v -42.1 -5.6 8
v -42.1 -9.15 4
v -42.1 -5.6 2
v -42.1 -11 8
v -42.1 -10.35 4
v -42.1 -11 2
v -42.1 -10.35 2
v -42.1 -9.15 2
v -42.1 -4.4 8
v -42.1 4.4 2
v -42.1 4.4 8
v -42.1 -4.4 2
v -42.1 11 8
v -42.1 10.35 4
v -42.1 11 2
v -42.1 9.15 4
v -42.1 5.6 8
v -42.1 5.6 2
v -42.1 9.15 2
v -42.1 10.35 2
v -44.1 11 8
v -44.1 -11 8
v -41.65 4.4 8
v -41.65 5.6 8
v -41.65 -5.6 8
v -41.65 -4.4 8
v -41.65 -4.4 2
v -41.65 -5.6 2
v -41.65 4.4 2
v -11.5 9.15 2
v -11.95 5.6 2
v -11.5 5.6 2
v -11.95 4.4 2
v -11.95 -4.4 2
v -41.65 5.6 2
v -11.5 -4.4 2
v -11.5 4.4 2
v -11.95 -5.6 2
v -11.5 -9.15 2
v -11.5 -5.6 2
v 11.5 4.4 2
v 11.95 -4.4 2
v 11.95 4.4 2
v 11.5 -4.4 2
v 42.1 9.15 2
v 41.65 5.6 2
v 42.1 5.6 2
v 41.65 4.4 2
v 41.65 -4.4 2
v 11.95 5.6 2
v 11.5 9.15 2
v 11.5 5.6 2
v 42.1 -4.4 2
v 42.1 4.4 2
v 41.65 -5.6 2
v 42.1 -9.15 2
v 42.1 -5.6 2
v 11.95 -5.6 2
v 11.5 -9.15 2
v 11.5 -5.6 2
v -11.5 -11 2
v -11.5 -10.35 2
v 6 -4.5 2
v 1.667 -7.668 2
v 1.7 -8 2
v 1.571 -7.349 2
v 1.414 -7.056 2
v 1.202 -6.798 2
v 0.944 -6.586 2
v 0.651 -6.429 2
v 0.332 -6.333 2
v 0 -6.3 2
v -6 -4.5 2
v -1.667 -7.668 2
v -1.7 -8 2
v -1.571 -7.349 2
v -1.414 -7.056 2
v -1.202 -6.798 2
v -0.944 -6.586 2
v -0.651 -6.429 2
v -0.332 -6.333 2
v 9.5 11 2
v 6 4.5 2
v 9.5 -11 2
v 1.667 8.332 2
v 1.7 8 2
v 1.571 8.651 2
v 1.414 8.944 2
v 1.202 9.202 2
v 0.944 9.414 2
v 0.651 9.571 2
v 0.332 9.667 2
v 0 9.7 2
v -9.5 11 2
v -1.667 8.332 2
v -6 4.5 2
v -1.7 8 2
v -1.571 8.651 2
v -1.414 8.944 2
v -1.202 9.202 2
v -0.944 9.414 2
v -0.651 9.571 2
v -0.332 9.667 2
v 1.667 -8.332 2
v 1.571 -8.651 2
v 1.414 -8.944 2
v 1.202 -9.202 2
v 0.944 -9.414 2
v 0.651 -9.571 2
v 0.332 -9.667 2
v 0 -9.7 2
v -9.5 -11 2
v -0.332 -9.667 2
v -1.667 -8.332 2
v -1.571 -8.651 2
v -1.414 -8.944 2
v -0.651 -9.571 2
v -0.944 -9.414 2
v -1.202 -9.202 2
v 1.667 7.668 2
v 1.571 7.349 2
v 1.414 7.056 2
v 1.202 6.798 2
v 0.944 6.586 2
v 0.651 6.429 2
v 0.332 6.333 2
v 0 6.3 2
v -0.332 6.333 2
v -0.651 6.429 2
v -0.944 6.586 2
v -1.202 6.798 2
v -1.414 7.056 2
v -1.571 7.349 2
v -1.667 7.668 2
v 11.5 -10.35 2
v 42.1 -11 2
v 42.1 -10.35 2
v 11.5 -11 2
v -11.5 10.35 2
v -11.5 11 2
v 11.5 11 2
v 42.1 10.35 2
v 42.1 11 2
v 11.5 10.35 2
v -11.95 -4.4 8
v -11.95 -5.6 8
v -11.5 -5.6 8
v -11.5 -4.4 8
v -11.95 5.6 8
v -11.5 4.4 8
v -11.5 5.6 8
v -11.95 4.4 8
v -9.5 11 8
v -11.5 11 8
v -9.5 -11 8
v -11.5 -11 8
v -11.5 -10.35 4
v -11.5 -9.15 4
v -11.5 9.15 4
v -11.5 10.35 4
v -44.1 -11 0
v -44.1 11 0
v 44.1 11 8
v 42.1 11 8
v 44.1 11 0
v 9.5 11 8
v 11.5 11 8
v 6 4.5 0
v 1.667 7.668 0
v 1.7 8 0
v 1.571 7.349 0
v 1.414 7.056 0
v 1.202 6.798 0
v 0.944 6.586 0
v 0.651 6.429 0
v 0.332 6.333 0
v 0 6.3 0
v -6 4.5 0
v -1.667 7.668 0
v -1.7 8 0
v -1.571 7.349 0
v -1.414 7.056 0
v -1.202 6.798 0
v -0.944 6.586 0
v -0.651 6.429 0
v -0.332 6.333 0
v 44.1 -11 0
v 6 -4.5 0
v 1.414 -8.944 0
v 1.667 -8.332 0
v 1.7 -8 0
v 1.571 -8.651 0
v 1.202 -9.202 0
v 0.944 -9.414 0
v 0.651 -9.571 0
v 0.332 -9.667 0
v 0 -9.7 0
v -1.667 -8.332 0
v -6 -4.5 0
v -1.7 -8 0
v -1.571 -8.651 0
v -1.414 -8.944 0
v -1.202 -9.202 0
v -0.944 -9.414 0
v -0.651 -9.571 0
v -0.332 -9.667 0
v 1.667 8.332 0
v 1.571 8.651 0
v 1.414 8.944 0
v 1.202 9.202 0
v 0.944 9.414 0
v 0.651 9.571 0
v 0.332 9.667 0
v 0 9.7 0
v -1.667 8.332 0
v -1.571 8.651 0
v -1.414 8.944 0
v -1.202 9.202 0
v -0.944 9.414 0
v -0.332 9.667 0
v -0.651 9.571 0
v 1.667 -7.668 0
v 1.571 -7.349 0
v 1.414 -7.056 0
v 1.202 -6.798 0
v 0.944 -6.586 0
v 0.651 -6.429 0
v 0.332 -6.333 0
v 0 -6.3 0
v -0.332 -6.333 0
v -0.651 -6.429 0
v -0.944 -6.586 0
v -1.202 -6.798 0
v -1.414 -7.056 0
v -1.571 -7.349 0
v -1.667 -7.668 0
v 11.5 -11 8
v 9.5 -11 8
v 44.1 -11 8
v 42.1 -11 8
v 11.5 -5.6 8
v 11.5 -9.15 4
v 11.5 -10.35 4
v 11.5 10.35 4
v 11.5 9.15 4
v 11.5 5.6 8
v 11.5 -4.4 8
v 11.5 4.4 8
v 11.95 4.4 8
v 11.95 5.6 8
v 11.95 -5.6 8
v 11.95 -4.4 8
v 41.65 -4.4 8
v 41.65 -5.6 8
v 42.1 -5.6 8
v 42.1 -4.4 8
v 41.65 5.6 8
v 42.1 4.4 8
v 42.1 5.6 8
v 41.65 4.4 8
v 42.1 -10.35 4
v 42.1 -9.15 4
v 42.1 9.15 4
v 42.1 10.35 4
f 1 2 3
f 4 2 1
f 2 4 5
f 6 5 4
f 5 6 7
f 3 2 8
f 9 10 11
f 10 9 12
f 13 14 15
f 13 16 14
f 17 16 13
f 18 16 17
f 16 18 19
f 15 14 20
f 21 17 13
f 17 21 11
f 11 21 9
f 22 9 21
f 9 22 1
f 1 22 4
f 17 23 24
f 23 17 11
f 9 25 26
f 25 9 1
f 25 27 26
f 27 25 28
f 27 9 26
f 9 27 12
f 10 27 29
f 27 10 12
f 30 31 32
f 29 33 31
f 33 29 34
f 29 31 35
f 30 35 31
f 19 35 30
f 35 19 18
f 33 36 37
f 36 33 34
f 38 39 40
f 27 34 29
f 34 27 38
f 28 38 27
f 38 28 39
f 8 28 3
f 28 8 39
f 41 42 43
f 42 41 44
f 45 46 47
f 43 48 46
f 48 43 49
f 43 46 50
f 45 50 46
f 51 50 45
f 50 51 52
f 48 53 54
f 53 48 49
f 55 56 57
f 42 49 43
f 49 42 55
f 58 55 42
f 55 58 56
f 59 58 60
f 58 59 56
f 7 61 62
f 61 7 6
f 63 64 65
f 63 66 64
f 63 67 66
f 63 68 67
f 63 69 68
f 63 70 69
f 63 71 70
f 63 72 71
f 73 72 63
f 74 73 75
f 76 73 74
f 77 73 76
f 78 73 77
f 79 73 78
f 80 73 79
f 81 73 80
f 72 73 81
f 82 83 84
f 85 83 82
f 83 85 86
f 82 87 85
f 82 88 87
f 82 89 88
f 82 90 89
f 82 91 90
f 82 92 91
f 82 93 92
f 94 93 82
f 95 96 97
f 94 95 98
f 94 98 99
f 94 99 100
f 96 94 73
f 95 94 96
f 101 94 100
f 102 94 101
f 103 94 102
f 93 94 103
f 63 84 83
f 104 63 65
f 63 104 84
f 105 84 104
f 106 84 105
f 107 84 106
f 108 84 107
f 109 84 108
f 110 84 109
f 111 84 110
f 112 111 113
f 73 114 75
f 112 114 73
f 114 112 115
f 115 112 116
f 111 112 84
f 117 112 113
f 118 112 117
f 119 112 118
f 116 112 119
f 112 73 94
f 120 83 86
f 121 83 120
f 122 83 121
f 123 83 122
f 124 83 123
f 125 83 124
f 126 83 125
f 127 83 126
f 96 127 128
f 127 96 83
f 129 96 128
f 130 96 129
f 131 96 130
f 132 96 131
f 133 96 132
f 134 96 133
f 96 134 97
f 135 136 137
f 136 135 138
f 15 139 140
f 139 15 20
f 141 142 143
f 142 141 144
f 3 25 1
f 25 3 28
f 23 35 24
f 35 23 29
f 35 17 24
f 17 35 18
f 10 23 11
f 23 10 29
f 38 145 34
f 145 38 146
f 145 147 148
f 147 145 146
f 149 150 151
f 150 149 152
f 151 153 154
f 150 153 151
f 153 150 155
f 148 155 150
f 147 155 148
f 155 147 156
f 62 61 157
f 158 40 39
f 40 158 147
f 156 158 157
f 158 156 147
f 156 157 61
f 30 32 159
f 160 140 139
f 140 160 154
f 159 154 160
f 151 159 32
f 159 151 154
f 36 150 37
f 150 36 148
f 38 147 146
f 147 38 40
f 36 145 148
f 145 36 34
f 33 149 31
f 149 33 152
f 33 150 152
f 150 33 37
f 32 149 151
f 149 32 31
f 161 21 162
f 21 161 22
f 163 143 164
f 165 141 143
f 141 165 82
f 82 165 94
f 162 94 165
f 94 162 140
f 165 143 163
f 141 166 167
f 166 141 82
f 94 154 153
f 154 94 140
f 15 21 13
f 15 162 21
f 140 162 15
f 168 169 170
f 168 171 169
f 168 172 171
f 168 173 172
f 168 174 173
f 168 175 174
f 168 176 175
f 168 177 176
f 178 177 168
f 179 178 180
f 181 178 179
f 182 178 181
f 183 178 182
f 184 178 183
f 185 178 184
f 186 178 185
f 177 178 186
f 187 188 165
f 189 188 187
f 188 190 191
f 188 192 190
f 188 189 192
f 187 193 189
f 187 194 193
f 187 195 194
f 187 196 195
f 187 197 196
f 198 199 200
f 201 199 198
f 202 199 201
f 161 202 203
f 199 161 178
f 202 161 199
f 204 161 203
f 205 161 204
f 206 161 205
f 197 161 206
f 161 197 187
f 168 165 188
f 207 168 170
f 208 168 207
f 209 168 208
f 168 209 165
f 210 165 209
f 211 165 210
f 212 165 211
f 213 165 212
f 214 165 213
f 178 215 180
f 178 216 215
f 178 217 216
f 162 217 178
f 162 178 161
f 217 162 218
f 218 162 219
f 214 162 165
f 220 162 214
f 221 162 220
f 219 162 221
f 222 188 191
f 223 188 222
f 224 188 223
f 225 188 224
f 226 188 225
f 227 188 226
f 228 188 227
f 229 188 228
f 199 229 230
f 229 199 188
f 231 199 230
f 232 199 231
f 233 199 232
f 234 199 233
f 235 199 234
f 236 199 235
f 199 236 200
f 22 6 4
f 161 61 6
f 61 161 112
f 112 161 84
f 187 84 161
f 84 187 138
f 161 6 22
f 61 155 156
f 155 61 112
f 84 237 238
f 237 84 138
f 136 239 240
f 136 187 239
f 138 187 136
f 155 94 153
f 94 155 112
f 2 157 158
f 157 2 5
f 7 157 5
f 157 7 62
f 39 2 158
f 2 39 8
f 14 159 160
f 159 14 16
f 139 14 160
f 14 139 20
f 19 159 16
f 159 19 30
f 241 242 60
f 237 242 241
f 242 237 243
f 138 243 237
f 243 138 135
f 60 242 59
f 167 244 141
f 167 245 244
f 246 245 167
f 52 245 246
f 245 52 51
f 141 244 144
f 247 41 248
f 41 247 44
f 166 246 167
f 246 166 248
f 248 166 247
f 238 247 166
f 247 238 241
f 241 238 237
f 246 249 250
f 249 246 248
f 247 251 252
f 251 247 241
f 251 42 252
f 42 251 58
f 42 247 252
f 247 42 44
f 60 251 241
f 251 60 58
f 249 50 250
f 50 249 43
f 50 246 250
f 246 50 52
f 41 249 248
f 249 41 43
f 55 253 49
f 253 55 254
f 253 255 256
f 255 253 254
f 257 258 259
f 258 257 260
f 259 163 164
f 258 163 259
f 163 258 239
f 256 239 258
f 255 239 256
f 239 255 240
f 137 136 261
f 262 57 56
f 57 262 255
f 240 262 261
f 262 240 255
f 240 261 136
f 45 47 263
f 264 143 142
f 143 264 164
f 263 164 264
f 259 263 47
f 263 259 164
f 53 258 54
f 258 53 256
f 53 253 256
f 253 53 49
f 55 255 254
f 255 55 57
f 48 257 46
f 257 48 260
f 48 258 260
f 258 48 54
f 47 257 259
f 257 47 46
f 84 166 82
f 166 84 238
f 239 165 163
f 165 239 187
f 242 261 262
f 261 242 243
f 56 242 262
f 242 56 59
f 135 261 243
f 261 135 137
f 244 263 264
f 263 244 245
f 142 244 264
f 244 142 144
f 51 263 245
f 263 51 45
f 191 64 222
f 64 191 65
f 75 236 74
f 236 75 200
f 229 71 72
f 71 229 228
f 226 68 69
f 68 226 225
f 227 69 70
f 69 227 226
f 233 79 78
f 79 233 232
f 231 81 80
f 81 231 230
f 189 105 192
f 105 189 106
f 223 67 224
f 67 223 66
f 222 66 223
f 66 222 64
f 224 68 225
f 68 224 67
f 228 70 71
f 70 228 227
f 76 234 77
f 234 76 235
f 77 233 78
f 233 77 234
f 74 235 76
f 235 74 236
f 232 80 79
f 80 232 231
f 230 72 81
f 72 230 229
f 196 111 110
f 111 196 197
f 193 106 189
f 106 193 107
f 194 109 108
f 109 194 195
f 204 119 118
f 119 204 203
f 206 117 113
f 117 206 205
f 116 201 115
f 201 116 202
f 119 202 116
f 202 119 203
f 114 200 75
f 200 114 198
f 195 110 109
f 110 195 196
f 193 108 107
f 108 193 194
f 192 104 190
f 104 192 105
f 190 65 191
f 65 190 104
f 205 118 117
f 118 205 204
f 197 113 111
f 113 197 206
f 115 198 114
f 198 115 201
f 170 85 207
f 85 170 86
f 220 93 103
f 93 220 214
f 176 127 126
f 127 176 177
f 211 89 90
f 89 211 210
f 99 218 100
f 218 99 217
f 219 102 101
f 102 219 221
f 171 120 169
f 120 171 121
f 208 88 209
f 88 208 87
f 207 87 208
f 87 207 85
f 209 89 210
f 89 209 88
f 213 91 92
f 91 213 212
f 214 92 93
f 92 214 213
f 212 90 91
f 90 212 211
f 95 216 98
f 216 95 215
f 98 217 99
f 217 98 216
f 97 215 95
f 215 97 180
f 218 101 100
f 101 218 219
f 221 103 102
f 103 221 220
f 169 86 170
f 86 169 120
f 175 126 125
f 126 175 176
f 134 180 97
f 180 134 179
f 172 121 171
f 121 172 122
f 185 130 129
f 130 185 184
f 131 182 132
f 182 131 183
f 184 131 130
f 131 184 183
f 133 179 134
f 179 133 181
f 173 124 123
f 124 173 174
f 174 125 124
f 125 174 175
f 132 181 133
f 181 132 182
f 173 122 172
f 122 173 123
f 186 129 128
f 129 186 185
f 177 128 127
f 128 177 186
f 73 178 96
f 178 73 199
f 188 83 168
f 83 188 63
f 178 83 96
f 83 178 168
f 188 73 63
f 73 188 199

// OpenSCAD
// Wago tray: holds the two Wago 221-415 lever connectors that make Grover's
// 12 V bus (+12 V and GND), side by side at the front of the acrylic deck,
// between the front posts and ahead of the driver tray (Enoch's layout,
// 2026-10-31). The bridge between them sits over the acrylic's centre
// cut-out and keeps an opening there for the BMS leads to come through.
//
// Each Wago presses into a pocket (Enoch: press fit, no zip ties): crush ribs on
// the two short end walls grip its 30 mm length, and 2 mm side rails locate it
// across - low enough to stay under the wire entries on one long side and the
// levers on the other, which both need clearance (levers lift up - make the connections before the battery
// cradle goes on). The tray is its own drill template: two M3 holes in the
// bridge, either side of the opening.
//
// Measured: Wago 18 x 30 mm (Enoch, 10-31), ~8.5 mm tall; gap between them in
// his layout ~19 mm.
//
// Render: openscad -o wago-tray.stl wago-tray.scad
// Print:  floor down, no supports, no brim.

wago_l   = 30.0;
wago_w   = 18.0;
fit      = 0.6;     // on the length: clearance between the end walls; the ribs take it up
rib_h    = 0.45;    // crush ribs: stand proud of each end wall by this much
rib_w    = 1.2;
rail_h   = 2;       // side rails along the long sides
rail_t   = 1.2;
side_fit = 0.3;
floor_t  = 2;
end_h    = 6;       // end walls (Wago is ~8.5 tall)
end_t    = 2;
gap      = 19;      // between the two Wagos (over the acrylic cut-out)
open_w   = 12;      // BMS-lead opening in the bridge
open_d   = 9;
m3_clear = 3.4;
depth    = wago_w + 4;   // tray front-to-back

pocket_l = wago_l + fit;
cell_x   = pocket_l + 2 * end_t;
total_x  = 2 * cell_x + gap;

$fn = 32;

module tray() {
  difference() {
    union() {
      translate([-total_x / 2, -depth / 2, 0]) cube([total_x, depth, floor_t]);
      for (s = [-1, 1]) {
        cx = s * (gap / 2 + cell_x / 2);
        for (e = [-1, 1]) {   // end walls of each pocket, with two crush ribs each
          translate([cx + e * (pocket_l / 2 + end_t / 2) - end_t / 2, -depth / 2, 0])
            cube([end_t, depth, floor_t + end_h]);
          for (dy = [-5, 5])
            translate([cx + e * (pocket_l / 2) - (e > 0 ? rib_h : 0), dy - rib_w / 2, floor_t])
              cube([rib_h, rib_w, end_h]);
        }
        for (sy = [-1, 1])   // low side rails
          translate([cx - pocket_l / 2, sy > 0 ? wago_w / 2 + side_fit / 2 : -wago_w / 2 - side_fit / 2 - rail_t, 0])
            cube([pocket_l, rail_t, floor_t + rail_h]);
      }
    }
    // BMS-lead opening in the bridge
    translate([-open_w / 2, -open_d / 2, -1]) cube([open_w, open_d, floor_t + 2]);
    // drill-template holes either side of the opening
    for (dy = [-1, 1]) translate([0, dy * (open_d / 2 + 3.5), -1]) cylinder(d = m3_clear, h = floor_t + 2);
  }
}

module ghosts() {   // the two Wagos, for checking
  for (s = [-1, 1]) %translate([s * (gap / 2 + cell_x / 2) - wago_l / 2, -wago_w / 2, floor_t]) cube([wago_l, wago_w, 8.5]);
}

tray();
ghosts();
